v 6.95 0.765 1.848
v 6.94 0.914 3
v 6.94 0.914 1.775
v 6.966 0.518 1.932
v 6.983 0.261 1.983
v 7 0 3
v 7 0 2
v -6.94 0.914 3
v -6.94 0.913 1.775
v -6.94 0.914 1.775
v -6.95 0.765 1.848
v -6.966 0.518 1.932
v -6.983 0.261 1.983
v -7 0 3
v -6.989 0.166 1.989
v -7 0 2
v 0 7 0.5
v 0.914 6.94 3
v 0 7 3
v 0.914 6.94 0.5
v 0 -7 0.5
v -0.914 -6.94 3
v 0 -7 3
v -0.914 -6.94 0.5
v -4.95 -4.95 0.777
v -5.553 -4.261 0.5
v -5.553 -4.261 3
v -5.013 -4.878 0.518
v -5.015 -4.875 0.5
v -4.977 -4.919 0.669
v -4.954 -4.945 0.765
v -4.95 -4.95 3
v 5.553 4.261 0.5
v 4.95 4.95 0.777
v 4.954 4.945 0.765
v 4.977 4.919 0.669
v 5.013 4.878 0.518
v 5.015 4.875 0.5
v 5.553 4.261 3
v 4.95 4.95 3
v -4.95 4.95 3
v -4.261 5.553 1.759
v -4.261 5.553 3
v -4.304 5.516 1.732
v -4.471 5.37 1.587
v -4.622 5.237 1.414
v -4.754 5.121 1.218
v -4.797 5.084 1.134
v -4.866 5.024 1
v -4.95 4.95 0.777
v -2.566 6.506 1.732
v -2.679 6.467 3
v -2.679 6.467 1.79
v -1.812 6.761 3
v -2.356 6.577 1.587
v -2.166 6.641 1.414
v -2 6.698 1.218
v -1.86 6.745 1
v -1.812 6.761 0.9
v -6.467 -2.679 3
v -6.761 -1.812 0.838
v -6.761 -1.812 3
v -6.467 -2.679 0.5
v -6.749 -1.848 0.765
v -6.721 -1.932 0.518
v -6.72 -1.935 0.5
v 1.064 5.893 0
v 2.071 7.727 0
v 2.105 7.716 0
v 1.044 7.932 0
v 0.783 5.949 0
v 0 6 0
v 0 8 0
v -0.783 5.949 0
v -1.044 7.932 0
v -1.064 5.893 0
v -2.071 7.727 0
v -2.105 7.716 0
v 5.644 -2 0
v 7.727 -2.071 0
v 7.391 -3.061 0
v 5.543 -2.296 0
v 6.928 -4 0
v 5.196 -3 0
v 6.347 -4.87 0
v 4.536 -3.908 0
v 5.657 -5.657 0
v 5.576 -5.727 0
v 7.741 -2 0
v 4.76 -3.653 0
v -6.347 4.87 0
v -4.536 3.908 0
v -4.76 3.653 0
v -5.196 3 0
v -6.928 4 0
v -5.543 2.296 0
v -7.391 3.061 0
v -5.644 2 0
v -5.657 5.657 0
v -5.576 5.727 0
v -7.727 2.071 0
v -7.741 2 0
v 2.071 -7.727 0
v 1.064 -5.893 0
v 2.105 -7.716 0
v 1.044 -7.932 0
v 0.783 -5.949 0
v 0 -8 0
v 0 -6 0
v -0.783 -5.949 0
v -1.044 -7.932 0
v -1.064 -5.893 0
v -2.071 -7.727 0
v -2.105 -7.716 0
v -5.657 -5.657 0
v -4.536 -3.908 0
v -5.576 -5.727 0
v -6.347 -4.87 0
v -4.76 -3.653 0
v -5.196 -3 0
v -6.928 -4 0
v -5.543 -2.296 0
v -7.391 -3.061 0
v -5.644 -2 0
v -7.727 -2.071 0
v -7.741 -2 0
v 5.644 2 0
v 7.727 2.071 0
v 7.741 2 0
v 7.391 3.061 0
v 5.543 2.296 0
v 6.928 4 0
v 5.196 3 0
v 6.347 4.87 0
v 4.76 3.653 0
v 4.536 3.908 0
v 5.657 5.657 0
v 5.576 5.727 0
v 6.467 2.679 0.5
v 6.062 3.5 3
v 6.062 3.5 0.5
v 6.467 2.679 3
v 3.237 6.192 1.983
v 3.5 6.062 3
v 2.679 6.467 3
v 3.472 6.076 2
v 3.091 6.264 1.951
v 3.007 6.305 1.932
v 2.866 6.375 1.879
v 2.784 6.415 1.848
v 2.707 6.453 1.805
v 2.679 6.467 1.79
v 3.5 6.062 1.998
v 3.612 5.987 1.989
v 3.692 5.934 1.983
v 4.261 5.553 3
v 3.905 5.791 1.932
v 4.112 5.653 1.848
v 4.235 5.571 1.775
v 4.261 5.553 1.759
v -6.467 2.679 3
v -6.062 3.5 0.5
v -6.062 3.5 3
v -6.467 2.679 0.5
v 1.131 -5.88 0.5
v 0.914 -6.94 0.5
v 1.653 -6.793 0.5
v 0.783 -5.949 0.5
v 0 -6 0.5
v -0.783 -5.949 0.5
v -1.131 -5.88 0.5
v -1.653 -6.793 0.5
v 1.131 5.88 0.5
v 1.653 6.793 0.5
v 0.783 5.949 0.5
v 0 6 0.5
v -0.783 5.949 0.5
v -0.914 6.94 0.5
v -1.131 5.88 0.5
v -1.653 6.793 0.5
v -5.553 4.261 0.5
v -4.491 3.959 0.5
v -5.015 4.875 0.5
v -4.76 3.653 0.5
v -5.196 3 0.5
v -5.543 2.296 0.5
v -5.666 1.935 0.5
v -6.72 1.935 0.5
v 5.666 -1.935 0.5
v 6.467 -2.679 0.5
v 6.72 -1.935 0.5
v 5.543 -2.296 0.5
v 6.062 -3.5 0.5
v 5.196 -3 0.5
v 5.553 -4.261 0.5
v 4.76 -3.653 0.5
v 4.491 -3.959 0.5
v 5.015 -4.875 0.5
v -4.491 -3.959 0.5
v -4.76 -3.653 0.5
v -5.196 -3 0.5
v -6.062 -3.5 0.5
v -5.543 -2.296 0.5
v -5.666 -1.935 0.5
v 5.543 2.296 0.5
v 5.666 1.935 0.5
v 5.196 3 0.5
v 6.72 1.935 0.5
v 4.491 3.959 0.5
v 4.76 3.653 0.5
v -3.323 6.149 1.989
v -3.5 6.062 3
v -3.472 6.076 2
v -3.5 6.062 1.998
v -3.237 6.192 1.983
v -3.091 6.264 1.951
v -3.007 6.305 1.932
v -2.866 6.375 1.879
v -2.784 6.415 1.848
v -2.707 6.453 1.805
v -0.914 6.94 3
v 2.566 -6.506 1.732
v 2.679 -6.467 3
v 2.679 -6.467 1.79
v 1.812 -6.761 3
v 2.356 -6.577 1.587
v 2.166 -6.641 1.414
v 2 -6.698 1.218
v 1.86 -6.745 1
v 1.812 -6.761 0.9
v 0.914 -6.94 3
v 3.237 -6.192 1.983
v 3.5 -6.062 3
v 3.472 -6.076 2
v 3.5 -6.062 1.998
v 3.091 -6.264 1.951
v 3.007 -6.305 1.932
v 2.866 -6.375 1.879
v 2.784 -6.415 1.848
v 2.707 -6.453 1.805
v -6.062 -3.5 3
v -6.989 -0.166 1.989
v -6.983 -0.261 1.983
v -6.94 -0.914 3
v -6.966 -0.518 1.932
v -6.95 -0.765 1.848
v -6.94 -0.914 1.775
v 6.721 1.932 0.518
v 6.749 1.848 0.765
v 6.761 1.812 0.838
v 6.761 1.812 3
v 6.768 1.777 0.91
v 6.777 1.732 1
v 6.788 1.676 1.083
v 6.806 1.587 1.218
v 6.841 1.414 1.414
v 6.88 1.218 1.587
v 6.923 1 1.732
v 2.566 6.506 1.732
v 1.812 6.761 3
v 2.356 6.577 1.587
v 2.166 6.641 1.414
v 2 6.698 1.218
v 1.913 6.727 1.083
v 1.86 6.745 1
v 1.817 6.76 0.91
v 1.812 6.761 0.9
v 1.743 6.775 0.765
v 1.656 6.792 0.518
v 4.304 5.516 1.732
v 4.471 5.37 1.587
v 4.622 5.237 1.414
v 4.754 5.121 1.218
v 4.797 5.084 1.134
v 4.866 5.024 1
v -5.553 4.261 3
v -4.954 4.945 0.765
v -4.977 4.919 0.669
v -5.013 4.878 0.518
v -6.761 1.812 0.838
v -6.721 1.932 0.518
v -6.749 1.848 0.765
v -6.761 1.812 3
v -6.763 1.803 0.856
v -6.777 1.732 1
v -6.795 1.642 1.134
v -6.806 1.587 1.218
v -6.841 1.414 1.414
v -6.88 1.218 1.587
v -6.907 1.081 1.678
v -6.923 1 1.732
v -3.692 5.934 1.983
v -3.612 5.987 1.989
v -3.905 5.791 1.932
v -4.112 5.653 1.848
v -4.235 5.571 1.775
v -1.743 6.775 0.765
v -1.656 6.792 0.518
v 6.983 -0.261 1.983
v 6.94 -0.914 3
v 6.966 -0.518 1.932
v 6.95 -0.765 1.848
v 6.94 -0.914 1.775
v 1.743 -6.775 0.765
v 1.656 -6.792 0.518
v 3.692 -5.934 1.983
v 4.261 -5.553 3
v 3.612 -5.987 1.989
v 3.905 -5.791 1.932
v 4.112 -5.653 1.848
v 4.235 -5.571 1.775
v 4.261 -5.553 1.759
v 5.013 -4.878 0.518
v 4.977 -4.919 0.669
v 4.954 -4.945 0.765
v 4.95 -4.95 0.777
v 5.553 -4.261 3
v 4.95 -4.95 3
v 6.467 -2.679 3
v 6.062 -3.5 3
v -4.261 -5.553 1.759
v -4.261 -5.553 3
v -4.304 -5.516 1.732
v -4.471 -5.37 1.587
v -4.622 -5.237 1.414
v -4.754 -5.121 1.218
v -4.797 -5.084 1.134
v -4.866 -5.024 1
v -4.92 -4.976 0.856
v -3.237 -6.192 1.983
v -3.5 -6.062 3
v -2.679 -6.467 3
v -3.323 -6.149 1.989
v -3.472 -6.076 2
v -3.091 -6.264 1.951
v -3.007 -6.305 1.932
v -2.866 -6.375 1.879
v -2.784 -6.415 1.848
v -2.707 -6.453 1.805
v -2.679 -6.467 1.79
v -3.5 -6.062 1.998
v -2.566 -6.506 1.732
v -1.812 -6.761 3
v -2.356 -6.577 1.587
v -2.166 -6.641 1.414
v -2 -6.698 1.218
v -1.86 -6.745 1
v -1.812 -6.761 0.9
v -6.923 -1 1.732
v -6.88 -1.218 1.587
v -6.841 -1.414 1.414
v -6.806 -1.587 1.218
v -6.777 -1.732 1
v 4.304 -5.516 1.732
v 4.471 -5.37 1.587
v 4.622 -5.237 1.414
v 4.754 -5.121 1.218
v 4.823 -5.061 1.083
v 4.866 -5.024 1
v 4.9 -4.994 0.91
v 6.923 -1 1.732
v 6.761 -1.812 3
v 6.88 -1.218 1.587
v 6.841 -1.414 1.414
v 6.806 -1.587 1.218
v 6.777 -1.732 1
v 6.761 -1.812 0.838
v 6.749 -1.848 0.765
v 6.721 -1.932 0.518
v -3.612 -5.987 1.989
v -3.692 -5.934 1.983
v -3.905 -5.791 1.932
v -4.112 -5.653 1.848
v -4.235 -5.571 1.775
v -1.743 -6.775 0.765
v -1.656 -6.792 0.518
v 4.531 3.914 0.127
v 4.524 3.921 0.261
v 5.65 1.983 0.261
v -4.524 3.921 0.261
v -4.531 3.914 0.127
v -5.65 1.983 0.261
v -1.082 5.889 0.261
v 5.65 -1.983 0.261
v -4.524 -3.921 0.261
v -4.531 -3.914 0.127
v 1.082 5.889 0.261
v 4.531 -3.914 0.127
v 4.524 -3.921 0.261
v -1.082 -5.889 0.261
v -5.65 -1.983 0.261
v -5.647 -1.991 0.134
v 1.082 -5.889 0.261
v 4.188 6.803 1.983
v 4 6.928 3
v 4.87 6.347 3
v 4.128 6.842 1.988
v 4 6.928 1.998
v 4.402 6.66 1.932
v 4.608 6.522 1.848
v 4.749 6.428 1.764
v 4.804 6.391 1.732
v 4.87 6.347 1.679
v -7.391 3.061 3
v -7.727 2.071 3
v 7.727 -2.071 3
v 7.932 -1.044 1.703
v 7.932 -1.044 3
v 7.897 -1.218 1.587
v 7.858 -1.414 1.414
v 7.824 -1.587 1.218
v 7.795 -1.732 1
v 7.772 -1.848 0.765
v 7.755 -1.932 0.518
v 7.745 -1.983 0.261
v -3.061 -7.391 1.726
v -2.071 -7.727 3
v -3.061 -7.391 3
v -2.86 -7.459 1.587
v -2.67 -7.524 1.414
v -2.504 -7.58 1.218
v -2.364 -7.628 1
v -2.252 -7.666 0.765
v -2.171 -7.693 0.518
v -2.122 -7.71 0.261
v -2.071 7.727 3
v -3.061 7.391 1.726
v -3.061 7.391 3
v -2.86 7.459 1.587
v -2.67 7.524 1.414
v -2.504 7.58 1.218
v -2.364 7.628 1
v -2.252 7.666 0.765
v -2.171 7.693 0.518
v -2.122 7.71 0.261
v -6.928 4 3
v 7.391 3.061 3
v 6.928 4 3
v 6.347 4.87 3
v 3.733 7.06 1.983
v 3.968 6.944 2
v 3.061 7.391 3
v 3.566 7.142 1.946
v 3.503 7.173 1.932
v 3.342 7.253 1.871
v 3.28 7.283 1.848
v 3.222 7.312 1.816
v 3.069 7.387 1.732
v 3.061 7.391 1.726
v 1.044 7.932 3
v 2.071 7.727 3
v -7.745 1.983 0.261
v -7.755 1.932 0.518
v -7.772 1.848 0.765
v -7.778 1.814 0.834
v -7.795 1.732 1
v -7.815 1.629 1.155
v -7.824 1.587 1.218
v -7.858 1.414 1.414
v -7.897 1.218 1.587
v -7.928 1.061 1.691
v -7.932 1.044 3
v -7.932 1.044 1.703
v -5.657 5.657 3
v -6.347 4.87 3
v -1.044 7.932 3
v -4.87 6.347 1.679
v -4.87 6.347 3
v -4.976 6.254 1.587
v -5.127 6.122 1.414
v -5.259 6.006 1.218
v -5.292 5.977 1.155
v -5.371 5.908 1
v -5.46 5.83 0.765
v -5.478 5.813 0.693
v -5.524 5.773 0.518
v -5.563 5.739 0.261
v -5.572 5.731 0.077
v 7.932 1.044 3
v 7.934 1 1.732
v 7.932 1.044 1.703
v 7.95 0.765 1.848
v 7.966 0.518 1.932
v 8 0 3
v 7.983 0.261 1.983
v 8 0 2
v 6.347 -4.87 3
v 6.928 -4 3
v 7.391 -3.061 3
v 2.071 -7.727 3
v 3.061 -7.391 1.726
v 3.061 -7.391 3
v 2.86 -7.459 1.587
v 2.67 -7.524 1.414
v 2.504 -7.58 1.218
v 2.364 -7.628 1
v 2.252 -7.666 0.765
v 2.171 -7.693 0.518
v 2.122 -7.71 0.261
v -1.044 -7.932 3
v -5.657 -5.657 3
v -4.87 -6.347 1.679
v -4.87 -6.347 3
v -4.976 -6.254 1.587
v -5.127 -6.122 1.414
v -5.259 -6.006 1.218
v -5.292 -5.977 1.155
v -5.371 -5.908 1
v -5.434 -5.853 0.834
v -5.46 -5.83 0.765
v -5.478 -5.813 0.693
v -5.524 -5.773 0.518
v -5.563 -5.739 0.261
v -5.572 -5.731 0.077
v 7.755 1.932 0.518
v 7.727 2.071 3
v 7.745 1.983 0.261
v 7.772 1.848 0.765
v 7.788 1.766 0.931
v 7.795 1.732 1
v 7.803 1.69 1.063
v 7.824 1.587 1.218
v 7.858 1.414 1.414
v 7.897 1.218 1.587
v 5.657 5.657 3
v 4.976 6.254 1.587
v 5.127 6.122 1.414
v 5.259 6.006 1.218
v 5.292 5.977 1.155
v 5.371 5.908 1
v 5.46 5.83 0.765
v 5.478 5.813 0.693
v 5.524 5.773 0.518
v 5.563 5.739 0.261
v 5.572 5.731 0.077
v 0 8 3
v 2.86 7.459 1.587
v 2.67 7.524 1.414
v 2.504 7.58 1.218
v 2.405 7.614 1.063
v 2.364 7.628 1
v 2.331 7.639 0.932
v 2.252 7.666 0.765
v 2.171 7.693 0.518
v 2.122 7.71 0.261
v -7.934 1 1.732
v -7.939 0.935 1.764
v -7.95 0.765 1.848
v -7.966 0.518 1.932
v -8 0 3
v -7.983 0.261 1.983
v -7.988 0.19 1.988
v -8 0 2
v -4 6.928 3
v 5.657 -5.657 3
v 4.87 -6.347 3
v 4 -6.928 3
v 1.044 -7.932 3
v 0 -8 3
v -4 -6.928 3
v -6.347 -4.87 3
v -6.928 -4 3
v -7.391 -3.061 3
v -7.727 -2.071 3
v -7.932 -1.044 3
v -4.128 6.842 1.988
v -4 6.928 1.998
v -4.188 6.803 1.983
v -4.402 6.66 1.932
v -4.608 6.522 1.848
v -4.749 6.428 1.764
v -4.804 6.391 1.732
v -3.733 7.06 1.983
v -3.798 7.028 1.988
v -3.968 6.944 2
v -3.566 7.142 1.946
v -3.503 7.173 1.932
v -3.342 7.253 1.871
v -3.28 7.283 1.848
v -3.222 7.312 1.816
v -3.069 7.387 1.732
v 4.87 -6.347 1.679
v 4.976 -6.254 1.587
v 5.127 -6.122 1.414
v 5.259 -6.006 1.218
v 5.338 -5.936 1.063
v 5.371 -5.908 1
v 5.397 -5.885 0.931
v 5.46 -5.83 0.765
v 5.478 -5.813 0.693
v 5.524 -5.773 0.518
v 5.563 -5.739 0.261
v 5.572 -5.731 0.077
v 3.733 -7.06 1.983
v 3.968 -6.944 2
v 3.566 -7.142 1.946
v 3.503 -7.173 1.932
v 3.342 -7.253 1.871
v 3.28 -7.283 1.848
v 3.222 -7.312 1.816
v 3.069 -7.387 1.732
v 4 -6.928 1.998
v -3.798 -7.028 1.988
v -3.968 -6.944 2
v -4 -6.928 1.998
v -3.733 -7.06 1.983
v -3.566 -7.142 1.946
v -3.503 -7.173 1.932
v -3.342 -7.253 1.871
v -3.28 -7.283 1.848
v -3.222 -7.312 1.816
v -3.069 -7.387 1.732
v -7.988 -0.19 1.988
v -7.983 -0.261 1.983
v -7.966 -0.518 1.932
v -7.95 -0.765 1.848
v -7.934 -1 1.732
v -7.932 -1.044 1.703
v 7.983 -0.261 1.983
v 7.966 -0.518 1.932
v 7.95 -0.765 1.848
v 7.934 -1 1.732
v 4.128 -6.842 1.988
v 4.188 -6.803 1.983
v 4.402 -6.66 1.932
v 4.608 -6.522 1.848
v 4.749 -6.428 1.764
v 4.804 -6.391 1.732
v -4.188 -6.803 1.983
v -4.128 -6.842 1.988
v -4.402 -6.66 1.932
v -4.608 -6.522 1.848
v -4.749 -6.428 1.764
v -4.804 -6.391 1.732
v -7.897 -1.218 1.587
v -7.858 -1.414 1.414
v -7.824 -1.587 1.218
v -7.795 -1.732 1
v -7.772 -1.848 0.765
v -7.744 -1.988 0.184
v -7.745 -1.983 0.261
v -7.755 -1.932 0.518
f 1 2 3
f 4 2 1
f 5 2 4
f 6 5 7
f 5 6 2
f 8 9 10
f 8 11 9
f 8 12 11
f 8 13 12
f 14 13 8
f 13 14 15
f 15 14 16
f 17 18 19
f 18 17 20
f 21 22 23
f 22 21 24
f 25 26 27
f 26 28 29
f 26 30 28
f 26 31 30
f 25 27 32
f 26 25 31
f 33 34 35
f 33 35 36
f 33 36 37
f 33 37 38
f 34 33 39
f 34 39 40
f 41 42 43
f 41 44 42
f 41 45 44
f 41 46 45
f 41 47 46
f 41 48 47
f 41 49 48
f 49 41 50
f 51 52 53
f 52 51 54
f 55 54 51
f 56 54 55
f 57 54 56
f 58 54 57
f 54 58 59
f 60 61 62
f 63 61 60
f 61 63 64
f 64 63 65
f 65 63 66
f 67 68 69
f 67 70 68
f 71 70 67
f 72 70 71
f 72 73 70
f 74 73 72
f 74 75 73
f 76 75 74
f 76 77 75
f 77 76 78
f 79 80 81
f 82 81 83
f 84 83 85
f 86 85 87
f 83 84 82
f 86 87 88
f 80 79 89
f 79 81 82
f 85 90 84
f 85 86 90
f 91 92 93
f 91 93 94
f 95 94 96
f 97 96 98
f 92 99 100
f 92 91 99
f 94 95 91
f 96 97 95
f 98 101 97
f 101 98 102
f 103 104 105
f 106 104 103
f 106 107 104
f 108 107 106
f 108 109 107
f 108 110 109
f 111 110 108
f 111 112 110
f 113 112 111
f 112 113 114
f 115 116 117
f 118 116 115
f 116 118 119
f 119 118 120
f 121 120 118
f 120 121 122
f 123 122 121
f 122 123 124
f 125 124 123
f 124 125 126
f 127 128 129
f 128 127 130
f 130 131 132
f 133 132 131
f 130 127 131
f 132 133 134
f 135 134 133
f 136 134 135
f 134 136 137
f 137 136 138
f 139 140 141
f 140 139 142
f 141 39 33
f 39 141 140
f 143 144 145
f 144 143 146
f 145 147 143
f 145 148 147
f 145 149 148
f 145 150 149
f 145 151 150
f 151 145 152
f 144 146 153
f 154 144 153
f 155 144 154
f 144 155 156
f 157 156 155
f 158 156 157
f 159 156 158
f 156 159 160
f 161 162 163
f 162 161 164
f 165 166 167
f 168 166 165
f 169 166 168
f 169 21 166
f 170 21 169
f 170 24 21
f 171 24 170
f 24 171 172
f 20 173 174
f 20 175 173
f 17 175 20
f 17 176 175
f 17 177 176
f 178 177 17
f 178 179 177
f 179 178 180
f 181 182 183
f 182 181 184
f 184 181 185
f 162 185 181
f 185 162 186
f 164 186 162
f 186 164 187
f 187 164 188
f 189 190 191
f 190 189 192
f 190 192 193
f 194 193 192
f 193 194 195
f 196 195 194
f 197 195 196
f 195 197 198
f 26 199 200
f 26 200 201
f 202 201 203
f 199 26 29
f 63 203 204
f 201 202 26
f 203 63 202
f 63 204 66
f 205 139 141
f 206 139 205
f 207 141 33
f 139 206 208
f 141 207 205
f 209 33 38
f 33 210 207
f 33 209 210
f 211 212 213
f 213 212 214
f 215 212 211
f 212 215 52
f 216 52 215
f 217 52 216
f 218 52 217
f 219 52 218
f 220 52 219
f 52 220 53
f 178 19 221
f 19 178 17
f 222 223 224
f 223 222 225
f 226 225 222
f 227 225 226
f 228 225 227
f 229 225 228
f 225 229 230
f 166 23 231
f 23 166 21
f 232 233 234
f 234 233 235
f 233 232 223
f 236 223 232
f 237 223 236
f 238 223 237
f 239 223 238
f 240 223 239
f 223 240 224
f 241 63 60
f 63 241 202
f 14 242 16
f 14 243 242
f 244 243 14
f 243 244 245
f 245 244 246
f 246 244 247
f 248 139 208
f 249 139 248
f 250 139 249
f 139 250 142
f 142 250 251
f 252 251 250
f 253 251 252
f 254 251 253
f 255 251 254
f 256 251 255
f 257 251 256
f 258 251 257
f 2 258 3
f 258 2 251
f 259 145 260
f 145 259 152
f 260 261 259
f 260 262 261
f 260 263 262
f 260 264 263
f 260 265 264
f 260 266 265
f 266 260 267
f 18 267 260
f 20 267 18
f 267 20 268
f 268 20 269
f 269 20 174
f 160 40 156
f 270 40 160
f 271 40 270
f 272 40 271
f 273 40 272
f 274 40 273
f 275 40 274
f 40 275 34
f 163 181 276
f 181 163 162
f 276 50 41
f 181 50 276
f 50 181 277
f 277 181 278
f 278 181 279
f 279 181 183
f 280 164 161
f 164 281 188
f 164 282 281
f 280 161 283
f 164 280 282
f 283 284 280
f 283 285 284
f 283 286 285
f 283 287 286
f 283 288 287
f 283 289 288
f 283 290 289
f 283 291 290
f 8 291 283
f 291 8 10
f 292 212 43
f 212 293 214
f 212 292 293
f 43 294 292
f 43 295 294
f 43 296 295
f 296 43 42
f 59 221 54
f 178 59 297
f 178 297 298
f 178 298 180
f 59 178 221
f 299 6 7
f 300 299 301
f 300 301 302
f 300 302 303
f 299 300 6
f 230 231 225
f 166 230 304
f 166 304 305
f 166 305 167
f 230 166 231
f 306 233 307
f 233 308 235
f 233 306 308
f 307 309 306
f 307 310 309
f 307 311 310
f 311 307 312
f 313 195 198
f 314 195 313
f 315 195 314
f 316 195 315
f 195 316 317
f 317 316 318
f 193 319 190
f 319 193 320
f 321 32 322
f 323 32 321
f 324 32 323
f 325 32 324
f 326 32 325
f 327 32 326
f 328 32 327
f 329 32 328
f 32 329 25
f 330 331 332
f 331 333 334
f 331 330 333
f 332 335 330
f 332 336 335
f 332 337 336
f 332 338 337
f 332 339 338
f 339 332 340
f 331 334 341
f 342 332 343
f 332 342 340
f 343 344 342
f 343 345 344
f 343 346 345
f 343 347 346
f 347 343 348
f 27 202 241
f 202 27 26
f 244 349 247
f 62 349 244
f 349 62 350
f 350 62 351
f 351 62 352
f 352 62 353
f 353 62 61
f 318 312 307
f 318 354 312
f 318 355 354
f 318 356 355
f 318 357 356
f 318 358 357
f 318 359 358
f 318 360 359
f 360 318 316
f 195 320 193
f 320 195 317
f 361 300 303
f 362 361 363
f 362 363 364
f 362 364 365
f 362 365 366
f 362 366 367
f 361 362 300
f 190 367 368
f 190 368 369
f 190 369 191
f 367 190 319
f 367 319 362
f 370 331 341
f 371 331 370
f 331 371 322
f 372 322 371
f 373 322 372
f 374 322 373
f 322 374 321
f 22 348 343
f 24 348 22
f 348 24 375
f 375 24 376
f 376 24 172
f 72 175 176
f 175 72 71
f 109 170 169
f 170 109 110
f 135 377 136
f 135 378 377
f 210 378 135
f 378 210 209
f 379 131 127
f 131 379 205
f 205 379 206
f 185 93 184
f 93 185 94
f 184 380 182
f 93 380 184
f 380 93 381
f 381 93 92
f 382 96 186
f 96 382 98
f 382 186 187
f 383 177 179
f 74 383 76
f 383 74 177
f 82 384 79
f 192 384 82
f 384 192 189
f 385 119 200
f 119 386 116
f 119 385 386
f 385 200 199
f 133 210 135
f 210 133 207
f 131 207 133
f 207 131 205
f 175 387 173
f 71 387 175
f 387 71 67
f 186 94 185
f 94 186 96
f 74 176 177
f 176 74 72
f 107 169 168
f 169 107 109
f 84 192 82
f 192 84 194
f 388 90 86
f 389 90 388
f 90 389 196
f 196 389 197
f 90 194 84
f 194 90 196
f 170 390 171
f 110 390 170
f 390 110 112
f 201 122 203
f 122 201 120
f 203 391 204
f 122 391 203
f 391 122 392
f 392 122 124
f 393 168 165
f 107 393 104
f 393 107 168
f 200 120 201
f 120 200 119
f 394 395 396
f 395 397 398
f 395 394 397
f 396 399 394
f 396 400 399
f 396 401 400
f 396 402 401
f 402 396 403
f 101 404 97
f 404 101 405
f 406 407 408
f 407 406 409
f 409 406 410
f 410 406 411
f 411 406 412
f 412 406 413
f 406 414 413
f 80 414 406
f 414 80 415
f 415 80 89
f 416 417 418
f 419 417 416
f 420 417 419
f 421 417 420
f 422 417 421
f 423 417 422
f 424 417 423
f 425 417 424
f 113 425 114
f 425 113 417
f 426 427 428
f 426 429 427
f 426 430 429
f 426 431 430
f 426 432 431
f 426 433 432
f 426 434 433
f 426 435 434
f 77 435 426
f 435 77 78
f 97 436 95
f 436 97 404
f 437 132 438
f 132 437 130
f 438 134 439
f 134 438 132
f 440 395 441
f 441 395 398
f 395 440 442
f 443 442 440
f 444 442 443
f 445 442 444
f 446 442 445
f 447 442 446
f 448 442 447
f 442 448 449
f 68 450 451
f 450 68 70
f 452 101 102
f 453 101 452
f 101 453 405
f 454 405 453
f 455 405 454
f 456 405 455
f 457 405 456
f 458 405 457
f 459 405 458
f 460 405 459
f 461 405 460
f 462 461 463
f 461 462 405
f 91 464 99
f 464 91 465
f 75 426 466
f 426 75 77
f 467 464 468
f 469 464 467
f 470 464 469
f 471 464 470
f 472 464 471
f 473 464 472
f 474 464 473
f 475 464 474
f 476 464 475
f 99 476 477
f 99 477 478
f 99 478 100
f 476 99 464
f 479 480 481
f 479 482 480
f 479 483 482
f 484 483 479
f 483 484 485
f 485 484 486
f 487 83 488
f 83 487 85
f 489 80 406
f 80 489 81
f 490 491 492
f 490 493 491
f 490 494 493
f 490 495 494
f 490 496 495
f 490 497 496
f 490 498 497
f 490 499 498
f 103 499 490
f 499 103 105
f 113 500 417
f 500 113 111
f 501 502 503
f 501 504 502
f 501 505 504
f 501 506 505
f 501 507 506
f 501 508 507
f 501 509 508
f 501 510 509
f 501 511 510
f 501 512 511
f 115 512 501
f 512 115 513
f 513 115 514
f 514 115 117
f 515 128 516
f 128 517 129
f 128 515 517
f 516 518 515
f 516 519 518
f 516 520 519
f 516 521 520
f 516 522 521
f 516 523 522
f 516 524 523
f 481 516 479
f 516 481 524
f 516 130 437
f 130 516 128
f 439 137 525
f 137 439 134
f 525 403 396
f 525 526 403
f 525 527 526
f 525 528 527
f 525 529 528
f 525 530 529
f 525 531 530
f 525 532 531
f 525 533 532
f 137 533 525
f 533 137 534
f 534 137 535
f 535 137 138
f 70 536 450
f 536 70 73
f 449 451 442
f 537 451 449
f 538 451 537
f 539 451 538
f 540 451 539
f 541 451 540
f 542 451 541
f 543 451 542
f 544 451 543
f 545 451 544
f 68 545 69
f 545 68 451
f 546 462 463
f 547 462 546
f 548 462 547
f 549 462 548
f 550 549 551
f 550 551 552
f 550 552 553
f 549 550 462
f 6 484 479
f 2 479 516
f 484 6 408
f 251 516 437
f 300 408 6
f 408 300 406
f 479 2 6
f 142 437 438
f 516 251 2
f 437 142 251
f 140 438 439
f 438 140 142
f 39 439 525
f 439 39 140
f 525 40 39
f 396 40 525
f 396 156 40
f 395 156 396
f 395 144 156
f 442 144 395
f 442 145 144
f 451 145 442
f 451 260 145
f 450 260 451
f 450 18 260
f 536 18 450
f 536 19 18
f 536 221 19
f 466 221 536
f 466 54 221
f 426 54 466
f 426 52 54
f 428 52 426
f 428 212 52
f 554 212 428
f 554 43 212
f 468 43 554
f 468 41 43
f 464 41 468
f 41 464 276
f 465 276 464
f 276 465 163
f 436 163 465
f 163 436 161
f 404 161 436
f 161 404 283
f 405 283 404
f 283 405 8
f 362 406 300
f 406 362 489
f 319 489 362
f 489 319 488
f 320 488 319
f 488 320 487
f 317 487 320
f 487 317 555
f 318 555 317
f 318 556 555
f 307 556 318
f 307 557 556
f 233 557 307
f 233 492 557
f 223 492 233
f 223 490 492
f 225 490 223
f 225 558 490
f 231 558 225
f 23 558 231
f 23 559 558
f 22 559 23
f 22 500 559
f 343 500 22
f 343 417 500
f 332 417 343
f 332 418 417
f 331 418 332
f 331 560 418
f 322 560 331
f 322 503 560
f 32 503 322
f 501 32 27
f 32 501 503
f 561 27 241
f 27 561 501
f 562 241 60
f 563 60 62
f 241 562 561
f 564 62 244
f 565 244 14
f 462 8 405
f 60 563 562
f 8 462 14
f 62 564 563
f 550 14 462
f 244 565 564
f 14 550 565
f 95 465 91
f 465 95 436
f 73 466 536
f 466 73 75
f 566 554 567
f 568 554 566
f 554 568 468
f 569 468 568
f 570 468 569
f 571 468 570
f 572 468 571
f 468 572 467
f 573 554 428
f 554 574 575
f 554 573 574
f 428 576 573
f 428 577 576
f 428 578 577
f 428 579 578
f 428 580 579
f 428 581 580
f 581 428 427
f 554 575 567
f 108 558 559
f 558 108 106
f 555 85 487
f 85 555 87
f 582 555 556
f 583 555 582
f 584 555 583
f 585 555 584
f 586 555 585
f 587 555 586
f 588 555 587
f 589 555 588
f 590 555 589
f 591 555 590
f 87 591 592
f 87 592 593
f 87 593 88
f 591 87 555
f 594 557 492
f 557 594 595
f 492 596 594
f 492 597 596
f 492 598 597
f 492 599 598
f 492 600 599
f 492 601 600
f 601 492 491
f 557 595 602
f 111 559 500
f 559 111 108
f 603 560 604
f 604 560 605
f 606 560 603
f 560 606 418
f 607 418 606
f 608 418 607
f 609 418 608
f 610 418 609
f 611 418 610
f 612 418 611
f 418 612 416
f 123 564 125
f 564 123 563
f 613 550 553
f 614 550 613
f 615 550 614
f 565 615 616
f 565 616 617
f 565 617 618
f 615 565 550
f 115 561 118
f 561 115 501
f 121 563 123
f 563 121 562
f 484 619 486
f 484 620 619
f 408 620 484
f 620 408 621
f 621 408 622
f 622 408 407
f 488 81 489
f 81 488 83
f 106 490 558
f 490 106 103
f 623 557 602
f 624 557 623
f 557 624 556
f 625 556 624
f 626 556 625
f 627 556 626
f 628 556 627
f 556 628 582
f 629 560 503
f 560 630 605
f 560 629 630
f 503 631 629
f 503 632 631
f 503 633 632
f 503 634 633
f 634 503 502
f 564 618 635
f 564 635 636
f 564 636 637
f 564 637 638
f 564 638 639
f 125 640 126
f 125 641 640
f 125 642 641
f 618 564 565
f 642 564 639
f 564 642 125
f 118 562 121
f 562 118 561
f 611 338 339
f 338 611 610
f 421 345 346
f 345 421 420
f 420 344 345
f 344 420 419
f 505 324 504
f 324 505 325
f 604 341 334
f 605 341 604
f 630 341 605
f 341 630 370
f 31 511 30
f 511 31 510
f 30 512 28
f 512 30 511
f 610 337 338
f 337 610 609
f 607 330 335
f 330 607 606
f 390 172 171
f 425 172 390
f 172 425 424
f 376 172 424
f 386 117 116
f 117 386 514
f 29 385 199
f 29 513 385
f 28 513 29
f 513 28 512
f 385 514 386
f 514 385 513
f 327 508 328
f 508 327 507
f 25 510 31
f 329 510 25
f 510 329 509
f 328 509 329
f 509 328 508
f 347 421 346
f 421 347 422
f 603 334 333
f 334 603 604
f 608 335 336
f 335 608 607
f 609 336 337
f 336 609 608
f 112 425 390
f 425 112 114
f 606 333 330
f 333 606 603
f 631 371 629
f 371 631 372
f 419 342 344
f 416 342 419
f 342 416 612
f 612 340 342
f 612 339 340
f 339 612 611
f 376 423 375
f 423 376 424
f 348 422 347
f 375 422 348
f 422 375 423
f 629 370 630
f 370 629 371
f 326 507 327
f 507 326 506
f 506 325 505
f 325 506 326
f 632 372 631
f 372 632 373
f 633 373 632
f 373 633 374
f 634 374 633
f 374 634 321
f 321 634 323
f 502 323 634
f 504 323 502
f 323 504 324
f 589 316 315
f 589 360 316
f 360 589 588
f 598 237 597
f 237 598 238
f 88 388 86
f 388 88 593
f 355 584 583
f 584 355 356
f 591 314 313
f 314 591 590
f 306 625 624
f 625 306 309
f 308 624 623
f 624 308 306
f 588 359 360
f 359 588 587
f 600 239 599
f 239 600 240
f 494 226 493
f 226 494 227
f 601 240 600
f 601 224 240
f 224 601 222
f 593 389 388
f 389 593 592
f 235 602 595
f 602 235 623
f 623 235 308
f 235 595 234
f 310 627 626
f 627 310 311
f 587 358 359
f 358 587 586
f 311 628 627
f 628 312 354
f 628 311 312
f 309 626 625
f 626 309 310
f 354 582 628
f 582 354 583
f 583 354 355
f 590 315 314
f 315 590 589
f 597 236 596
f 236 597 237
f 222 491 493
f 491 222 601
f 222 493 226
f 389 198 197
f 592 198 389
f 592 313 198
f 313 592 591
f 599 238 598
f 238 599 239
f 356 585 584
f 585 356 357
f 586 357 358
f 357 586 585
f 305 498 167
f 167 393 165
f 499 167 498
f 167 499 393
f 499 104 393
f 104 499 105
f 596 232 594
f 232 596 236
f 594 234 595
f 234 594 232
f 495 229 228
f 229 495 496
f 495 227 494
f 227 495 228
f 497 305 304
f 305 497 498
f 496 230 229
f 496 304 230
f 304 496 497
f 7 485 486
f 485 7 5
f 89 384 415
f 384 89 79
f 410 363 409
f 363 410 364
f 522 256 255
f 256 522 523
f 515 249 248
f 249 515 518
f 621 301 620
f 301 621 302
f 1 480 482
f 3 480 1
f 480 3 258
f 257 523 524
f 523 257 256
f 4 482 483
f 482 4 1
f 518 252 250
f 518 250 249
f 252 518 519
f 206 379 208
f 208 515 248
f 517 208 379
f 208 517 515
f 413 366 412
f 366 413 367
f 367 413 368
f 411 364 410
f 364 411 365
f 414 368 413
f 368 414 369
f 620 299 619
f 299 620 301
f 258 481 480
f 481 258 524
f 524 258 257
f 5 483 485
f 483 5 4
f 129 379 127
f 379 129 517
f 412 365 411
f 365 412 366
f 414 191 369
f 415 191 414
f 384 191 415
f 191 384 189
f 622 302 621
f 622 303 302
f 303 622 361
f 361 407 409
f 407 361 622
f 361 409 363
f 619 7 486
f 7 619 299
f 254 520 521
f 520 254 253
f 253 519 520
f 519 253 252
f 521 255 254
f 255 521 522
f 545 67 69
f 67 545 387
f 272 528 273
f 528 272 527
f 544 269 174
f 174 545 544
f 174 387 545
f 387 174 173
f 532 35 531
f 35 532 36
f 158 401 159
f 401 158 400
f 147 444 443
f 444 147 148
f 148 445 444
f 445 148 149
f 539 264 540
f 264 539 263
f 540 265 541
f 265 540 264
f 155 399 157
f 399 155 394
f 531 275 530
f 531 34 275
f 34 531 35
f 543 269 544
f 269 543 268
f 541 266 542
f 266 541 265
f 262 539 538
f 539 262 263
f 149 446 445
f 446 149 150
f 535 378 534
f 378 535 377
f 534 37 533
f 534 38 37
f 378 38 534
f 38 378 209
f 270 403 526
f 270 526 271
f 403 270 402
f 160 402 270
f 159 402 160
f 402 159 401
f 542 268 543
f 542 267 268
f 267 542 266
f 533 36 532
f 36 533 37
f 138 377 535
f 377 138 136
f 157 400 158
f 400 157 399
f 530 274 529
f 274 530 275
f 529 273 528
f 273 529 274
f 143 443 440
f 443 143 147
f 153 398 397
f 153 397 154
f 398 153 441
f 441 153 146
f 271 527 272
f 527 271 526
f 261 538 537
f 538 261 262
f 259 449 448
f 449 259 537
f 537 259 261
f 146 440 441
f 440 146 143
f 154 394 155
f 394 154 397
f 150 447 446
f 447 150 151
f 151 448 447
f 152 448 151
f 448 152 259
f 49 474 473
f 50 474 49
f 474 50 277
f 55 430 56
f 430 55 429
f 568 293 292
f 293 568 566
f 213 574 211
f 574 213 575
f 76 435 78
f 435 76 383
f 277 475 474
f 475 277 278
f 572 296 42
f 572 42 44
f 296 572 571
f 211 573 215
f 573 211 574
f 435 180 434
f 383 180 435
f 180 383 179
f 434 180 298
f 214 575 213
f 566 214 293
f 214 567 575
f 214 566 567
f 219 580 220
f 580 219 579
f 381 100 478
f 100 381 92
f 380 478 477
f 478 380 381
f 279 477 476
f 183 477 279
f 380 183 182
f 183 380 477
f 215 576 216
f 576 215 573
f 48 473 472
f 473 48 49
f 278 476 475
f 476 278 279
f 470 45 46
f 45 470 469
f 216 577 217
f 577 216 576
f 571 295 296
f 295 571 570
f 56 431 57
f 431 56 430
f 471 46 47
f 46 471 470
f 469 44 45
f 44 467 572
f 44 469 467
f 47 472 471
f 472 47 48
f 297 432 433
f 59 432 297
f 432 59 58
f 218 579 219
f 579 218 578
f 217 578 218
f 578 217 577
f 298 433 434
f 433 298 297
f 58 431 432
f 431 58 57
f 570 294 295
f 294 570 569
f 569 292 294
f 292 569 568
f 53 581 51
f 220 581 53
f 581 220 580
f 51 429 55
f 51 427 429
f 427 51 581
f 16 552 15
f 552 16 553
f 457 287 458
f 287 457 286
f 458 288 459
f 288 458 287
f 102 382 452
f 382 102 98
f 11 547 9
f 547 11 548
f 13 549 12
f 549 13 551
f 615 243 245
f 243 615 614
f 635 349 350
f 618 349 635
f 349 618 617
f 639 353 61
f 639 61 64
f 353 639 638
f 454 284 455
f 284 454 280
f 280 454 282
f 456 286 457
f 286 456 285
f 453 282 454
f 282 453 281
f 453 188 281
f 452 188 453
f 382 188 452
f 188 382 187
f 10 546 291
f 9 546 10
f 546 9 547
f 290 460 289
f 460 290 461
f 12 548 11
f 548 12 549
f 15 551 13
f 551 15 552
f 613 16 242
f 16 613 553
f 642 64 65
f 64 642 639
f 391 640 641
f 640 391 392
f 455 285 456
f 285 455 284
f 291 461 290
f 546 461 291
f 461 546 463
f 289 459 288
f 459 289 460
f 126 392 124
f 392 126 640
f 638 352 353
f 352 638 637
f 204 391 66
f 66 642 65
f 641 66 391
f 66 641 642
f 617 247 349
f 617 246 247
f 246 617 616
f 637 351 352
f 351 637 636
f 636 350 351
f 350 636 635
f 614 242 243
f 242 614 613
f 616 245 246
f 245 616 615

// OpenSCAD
// file: ../build_environments.scad
// build_environments.scad: modules to build level sections
//

module pool(diameter=10.0, wall_height=2.0, step_width=3.0, connections=[])
{
    difference() {
        union() {
        difference() {
            cylinder(h=0.5,r1=diameter+step_width,r2=diameter+step_width,$fn=48);
            translate([0,0,-0.1])
                cylinder(h=0.7,r1=diameter,r2=diameter,$fn=48);
        }
        difference() {
            cylinder(h=wall_height,r1=diameter+step_width+1.0,r2=diameter+step_width+1.0,$fn=48);
            translate([0,0,-0.1])
                cylinder(h=wall_height+0.2,r1=diameter+step_width,r2=diameter+step_width,$fn=48);
        }
        }
    
        for (c = connections)
        {
            rotate([0,90,0]) {
                angle = atan2(c[1],c[0]);
                rotate([-angle,0,0]) {
                    cylinder(h=diameter+5.0,r1=c[2],r2=c[2],$fn=48);
                }
            }
        }
    }
}

module straight(length=10.0, width=2.0, dy1=0.0, dy2=0.0, dz=0.0)
{
    dims = [0, 0, 0, 0, 0, (dz/length)];
    matrix = [
        [ 1, dims[0], dims[1], 0 ],
        [ dims[2], 1, dims[4], 0 ],
        [ dims[5], dims[3], 1, 0 ],
        [ 0, 0, 0, 1 ]
    ];
    multmatrix(matrix)
    difference() {
        translate([dy1,0,0])
        union() {
            rotate([0,90,0]) {
                difference() {
                    cylinder(h=(length-dy1-dy2),r1=width+1.0,r2=width+1.0,$fn=24);
                    translate([0,0,-0.1])
                        cylinder(h=(length-dy1-dy2+0.2),r1=width,r2=width,$fn=24);
                }
                difference() {
                    cylinder(h=1.0,r1=width+2.0,r2=width+2.0,$fn=24);
                    translate([0,0,-0.1])
                        cylinder(h=1.2,r1=width,r2=width,$fn=24);
                }
                translate([0,0,(length-dy1-dy2)-1.0]) {
                    difference() {
                        cylinder(h=1.0,r1=width+2.0,r2=width+2.0,$fn=24);
                        translate([0,0,-0.1])
                            cylinder(h=1.2,r1=width,r2=width,$fn=24);
                    }
                }
            }
        }
        translate([0,0,-(2*width+4.0)/2])
            cube([3*length,3*length,2*width+4.0],center=true);
    }
}

module curve(p0=[0,0], center=[0,0], dir=1, angle=0.0, width=2.0)
{
    radius = sqrt((p0[0]-center[0])*(p0[0]-center[0]) + (p0[1]-center[1])*(p0[1]-center[1]));
    if (dir == 0) {
        difference() {
            rotate([0,0,-90])
            difference() {
                rotate_extrude(angle = angle, convexity = 10, $fn=32)
                    translate([radius, 0, 0])
                        circle(r = width+1.0,$fn=24);
                rotate([0,0,-1.0])
                    rotate_extrude(angle = angle+2.0, convexity = 10, $fn=32)
                        translate([radius, 0, 0])
                            circle(r = width,$fn=24);
            }
            translate([0,0,-(2*width+4.0)/2])
                cube([5*radius,5*radius,2*width+4.0],center=true);
        }
    }
    else {
        difference() {
            rotate([0,0,90])
            difference() {
                rotate_extrude(angle = -angle, convexity = 10, $fn=32)
                    translate([radius, 0, 0])
                        circle(r = width+1.0,$fn=24);
                rotate([0,0,1.0])
                    rotate_extrude(angle = -angle-2.0, convexity = 10, $fn=32)
                        translate([radius, 0, 0])
                            circle(r = width,$fn=24);
            }
            translate([0,0,-(2*width+4.0)/2])
                cube([5*radius,5*radius,2*width+4.0],center=true);
        }
    }

}

// test pool
//pool(diameter=12.0000, wall_height=3.0000, step_width=3.0000, connections=[[0.0000,-26.0000,2.0000], [23.6074,0.0000,2.0000]]);

// test straight, slope
//straight(length=26.0000, width=2.0000, dy1=11.8322, dy2=6.7082, dz=0.0000);
//straight(length=29.1549, width=12.0000, dy1=0.0000, dy2=0.0000, dz=-15.0000);

// test curve
//curve(p0=[23.6074, 0.0000], center=[23.6074, 5.0000], dir=0, angle=60.1011, width=2.0000);
//curve(p0=[33.6426, 12.4219], center=[37.9771, 9.9295], dir=1, angle=120.4627, width=2.0000);
// main file
use <../build_environments.scad>;
pool(diameter=6.0000, wall_height=3.0000, step_width=1.0000, connections=[[-8.0000,-14.0000,2.0000], [8.0000,-14.0000,2.0000], [16.0000,0.0000,2.0000], [8.0000,14.0000,2.0000], [-8.0000,14.0000,2.0000], [-16.0000,0.0000,2.0000]]);
